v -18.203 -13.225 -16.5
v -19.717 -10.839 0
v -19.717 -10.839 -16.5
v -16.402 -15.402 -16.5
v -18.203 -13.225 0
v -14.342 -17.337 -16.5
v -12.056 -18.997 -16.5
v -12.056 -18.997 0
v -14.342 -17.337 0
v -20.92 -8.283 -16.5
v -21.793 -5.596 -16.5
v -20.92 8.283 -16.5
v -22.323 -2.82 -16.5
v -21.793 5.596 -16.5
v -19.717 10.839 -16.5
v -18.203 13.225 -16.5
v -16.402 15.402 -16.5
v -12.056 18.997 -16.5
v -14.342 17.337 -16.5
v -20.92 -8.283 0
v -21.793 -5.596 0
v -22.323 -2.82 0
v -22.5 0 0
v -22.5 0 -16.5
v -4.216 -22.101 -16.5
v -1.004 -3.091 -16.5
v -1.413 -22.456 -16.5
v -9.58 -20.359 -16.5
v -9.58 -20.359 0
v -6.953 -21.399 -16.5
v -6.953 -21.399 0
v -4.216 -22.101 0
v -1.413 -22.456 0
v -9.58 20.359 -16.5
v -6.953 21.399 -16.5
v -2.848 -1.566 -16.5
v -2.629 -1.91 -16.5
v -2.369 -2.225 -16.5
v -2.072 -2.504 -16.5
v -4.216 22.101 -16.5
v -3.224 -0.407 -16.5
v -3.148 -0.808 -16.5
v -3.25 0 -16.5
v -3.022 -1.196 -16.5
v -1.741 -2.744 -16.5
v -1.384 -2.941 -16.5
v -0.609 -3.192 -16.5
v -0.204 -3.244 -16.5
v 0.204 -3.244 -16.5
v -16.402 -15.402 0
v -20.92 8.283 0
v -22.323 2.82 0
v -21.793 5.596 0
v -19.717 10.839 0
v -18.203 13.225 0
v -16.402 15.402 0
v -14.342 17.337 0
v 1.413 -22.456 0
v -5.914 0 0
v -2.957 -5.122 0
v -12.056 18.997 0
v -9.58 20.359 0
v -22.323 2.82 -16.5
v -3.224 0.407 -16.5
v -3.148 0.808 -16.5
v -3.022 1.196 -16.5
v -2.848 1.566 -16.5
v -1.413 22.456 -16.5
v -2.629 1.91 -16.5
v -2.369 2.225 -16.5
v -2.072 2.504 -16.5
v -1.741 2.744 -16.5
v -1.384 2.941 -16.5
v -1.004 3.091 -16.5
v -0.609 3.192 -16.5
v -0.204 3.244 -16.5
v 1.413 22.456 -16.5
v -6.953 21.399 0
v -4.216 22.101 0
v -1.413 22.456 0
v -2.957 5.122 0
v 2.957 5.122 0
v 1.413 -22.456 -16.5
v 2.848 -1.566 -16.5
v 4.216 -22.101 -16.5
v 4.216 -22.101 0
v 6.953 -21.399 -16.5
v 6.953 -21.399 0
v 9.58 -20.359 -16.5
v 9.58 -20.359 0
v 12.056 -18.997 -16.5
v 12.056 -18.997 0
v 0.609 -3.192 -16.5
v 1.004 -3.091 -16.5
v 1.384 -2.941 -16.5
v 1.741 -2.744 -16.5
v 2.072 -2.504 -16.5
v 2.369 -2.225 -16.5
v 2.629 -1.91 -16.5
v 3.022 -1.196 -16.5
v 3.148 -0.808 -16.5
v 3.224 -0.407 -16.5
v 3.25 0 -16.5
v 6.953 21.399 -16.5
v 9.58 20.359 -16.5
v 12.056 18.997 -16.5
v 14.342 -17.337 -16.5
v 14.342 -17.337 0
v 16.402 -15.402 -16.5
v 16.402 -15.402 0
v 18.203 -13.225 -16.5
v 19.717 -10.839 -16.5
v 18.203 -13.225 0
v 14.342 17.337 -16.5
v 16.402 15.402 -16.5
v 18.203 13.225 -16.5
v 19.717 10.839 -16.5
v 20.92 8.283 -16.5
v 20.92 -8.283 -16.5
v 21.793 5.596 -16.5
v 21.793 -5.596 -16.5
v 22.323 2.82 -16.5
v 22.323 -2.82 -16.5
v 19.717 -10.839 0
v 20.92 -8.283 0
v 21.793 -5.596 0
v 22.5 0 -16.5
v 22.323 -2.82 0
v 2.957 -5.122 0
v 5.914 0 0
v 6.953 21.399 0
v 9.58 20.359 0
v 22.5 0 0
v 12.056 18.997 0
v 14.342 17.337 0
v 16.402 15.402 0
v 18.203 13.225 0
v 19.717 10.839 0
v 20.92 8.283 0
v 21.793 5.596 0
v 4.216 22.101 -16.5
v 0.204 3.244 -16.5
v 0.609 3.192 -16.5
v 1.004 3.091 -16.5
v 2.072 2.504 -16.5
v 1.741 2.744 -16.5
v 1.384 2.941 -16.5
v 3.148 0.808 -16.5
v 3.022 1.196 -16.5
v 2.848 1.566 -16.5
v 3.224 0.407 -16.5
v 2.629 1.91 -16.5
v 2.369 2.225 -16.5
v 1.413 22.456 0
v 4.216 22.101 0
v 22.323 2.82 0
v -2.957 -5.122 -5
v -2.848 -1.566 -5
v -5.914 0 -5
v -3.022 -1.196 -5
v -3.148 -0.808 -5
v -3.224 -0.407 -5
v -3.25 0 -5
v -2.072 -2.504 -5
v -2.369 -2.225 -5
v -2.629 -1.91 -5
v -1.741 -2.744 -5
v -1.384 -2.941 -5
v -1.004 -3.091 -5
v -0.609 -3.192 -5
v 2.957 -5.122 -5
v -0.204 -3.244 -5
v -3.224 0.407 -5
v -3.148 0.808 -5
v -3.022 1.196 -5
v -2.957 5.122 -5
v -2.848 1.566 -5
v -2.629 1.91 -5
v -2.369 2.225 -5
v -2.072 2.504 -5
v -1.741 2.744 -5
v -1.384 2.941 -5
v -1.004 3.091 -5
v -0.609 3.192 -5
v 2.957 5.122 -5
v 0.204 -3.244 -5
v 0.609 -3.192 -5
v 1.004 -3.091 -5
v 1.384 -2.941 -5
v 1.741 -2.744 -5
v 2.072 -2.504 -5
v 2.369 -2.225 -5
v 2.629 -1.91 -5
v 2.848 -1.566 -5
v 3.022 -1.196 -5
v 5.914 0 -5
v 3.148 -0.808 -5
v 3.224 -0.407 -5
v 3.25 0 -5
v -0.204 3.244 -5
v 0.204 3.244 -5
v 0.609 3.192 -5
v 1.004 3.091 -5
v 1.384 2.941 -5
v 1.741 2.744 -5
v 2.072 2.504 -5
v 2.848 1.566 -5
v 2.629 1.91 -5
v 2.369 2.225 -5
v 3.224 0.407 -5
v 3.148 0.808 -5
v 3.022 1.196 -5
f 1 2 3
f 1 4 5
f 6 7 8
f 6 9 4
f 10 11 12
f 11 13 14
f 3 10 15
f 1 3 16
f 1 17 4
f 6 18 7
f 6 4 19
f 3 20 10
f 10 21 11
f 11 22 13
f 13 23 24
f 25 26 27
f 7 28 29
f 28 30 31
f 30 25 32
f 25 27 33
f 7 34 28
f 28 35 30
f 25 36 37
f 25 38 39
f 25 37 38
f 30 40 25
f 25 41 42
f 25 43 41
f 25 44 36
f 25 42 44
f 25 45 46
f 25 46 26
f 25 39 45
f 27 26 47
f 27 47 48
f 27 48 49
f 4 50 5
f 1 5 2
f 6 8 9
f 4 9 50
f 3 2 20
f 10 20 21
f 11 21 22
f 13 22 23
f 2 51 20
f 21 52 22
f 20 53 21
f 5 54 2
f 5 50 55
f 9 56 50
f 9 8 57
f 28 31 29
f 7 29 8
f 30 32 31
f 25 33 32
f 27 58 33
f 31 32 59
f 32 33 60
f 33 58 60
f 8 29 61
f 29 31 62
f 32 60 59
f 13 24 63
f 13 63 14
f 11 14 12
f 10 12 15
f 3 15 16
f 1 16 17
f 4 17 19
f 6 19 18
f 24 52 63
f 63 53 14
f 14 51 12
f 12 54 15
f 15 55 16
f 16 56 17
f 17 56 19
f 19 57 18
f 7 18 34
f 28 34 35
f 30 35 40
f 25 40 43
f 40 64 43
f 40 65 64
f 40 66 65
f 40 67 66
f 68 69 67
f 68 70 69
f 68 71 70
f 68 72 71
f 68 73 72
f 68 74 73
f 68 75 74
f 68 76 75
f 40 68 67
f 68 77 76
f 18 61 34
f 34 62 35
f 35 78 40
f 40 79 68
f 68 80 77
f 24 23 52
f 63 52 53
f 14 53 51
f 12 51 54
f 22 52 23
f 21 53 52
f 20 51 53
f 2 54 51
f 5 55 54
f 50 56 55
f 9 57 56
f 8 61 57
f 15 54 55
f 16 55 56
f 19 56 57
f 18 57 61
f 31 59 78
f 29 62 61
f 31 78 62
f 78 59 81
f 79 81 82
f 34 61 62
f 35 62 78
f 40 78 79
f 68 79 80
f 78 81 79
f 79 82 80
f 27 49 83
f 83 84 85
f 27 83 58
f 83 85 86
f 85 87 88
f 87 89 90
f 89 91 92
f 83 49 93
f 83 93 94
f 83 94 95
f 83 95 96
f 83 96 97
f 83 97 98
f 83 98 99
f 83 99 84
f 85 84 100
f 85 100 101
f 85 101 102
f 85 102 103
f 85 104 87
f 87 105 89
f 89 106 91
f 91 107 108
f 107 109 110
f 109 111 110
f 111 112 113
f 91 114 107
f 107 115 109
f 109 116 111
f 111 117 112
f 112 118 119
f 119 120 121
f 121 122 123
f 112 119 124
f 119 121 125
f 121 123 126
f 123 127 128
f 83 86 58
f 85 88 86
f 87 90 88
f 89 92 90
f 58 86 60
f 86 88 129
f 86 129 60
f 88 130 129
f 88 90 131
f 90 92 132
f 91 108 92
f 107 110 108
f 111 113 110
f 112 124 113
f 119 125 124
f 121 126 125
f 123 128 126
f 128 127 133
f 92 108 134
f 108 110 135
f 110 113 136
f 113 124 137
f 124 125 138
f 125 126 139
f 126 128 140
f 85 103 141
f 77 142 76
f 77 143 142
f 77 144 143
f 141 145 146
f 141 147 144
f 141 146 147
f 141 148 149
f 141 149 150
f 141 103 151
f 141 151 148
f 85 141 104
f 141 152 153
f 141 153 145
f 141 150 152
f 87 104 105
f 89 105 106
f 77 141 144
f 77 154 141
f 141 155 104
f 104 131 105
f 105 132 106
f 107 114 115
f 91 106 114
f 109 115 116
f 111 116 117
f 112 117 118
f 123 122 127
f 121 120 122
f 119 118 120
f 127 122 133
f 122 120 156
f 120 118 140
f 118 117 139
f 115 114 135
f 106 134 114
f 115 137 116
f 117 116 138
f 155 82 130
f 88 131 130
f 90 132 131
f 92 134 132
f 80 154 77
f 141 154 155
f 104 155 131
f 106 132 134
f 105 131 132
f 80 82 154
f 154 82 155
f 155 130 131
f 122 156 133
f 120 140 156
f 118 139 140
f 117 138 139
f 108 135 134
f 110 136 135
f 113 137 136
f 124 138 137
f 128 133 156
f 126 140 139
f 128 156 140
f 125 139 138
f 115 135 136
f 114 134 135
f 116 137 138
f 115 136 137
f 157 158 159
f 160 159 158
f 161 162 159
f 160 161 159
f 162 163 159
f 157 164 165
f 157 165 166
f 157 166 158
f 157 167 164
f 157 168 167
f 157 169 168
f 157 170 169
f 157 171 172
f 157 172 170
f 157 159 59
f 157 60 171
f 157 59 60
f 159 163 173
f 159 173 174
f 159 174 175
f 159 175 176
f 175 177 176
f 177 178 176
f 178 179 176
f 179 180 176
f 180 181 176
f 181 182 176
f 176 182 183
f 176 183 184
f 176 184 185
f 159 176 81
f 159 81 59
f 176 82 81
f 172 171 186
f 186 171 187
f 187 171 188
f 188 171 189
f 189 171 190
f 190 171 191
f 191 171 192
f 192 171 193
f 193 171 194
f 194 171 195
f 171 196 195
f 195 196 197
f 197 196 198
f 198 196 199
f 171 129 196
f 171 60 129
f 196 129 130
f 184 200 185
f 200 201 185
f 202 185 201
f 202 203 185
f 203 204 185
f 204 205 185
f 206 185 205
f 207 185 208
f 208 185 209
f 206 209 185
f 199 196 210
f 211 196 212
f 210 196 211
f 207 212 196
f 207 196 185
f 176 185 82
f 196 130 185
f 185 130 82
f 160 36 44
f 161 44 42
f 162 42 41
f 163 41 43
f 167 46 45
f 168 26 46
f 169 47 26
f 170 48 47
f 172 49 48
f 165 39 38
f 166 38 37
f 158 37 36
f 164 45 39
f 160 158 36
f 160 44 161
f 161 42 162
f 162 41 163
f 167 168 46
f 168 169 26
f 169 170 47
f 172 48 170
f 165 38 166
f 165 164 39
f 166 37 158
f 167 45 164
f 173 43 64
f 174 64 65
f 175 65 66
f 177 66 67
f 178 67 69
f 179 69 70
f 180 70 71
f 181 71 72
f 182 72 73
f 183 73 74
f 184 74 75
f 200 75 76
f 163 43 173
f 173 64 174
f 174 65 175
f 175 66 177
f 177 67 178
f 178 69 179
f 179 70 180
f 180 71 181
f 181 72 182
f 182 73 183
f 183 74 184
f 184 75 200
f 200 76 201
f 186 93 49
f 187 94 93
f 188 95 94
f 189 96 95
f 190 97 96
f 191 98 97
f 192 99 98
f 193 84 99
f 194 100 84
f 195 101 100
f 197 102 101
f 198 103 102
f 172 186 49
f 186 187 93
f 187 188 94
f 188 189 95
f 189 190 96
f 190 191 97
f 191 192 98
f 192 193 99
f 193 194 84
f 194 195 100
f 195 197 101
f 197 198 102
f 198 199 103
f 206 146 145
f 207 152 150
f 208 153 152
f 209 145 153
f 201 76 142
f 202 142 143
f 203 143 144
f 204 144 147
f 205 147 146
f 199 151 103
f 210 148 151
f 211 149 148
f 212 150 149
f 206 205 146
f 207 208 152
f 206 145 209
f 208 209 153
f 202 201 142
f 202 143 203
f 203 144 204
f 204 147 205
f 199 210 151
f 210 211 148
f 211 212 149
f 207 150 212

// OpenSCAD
$fn = 50;


difference() {
	union() {
		translate(v = [0, 0, -16.5000000000]) {
			cylinder(h = 16.5000000000, r = 22.5000000000);
		}
		#translate(v = [0, 0, -18.0000000000]) {
			cylinder(h = 18, r = 2.8750000000);
		}
	}
	union() {
		translate(v = [0, 0, 0]) {
			rotate(a = [0, 0, 0]) {
				difference() {
					union() {
						translate(v = [0, 0, -5]) {
							linear_extrude(height = 5) {
								polygon(points = [[5.9142500000, 0.0000000000], [2.9571250000, 5.1218907443], [-2.9571250000, 5.1218907443], [-5.9142500000, 0.0000000000], [-2.9571250000, -5.1218907443], [2.9571250000, -5.1218907443]]);
							}
						}
					}
					union();
				}
			}
		}
		#translate(v = [0, 0, -100.0000000000]) {
			cylinder(h = 200, r = 3.2500000000);
		}
	}
}
